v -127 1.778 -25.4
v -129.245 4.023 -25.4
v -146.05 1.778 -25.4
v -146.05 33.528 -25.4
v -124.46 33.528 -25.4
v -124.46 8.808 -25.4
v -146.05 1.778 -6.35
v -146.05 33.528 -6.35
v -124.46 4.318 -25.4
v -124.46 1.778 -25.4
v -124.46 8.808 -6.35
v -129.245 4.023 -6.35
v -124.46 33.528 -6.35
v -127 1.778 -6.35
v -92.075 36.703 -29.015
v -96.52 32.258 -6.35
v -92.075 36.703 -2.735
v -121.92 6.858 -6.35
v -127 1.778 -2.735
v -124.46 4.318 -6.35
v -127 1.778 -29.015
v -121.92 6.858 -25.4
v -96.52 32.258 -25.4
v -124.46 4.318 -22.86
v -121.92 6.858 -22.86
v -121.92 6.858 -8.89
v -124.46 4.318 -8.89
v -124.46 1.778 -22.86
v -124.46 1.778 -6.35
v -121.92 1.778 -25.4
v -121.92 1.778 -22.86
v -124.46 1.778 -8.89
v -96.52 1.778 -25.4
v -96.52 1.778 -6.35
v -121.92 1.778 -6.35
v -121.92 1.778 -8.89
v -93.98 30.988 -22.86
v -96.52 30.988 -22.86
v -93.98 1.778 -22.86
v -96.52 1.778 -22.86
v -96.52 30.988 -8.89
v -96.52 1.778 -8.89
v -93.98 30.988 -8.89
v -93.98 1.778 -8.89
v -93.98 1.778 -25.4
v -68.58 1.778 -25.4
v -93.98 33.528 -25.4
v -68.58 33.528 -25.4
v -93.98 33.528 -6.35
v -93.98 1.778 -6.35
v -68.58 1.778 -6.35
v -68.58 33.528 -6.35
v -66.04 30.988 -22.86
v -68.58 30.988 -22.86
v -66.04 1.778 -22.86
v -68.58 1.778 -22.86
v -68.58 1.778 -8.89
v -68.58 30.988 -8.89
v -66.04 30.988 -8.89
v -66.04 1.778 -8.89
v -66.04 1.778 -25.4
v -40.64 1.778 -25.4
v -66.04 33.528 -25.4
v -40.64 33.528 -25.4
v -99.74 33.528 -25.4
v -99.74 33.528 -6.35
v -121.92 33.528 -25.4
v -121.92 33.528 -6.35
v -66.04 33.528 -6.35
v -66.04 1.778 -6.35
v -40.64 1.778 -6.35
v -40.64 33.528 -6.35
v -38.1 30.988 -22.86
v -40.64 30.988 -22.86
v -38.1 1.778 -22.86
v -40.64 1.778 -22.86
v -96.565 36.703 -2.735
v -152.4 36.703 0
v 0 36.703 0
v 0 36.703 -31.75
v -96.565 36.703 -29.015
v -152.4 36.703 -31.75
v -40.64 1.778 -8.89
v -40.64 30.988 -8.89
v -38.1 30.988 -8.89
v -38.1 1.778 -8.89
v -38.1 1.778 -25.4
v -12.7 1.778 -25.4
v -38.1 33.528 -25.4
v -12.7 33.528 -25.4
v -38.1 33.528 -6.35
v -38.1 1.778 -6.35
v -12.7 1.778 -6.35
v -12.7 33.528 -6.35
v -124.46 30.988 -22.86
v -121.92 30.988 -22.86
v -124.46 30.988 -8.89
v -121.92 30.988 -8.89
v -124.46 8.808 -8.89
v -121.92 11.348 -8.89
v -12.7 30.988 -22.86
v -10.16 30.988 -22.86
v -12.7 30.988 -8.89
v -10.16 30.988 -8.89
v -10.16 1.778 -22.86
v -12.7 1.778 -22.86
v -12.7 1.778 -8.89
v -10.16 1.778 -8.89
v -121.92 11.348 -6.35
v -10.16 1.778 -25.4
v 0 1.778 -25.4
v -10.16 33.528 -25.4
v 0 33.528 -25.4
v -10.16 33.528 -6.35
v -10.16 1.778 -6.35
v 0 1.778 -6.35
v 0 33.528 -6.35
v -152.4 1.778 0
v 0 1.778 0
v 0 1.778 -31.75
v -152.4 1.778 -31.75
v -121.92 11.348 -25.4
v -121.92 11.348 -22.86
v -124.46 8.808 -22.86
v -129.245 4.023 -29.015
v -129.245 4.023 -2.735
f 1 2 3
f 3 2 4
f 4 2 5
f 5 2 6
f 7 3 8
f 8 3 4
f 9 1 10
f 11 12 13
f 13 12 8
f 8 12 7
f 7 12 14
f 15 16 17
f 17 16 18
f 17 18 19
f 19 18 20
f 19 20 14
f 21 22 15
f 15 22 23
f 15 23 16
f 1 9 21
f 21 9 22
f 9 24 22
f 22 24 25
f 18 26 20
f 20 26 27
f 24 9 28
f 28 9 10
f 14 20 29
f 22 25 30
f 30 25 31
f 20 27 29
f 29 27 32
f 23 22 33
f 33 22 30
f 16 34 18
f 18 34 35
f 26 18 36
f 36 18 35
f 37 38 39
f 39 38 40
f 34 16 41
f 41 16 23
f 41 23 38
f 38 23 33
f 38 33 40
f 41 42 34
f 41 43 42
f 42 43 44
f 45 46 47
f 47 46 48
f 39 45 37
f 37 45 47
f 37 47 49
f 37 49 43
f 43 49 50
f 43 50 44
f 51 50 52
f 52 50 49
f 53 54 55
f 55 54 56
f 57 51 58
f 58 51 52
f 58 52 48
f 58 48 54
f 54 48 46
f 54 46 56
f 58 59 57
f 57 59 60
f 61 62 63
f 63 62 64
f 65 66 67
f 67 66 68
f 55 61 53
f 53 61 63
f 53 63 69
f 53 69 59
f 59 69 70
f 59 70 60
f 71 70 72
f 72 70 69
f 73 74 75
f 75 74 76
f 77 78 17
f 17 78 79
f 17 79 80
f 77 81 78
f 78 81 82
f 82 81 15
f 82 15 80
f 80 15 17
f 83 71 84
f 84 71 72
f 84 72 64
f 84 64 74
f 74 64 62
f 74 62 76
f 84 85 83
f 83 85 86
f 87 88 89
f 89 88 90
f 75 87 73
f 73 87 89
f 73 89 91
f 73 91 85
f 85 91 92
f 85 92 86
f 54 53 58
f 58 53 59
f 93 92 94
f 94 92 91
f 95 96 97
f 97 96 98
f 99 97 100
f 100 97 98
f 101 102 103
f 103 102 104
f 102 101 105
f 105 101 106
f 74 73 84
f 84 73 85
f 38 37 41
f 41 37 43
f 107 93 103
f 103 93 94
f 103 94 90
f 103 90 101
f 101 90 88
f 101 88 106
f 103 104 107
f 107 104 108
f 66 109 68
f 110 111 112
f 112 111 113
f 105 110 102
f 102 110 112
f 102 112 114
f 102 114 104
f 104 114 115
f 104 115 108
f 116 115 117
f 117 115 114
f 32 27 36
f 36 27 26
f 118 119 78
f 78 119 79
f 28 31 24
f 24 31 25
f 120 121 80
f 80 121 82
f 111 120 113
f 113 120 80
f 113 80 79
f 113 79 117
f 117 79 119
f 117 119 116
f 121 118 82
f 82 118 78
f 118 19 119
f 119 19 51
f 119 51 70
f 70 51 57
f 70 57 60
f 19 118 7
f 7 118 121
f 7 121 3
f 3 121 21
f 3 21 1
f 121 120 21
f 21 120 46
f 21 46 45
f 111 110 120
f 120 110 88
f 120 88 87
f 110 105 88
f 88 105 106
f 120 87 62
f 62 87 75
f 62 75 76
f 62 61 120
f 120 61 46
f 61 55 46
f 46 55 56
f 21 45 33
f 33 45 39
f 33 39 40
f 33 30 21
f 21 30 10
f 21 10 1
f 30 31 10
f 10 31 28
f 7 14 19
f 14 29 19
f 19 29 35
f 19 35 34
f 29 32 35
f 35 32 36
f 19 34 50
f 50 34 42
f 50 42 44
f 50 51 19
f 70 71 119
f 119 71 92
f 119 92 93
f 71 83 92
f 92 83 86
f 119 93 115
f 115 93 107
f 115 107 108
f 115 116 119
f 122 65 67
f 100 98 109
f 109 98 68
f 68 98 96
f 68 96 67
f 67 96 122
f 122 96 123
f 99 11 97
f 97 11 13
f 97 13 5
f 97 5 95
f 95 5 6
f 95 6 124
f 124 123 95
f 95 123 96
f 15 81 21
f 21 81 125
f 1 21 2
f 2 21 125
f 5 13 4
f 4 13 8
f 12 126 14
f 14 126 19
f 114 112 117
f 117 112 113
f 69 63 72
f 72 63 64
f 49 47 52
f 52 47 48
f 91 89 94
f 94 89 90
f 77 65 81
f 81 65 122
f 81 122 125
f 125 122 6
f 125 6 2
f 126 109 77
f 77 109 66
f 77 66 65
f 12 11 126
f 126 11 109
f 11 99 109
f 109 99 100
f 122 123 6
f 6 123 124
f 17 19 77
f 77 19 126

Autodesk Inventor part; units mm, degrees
ref_plane "YZ Plane" through (0, 0, 0) normal (1, 0, 0) x (0, 1, 0)
ref_plane "XZ Plane" through (0, 0, 0) normal (0, 1, 0) x (-1, 0, 0)
ref_plane "XY Plane" through (0, 0, 0) normal (0, 0, 1) x (1, 0, 0)
sketch "Sketch1" plane through (0, 0, 0) normal (0, 1, 0) x (-1, 0, 0)
  line L0 (0, 0) -> (152.4, 0)
  line L1 (152.4, 0) -> (152.4, -31.75)
  line L2 (152.4, -31.75) -> (0, -31.75)
  line L3 (0, -31.75) -> (0, 0)
  line L4 (127, -8.89) -> (96.52, -8.89)
  line L5 (96.52, -8.89) -> (96.52, -22.86)
  line L6 (96.52, -22.86) -> (127, -22.86)
  line L7 (127, -22.86) -> (127, -8.89)
  line L8 (117.2368, -8.89) -> (117.2368, 0)
  line L9 (117.2368, -22.86) -> (117.2368, -31.75)
  dimension "d0" = 152.4
  dimension "d1" = 31.75
  dimension "d2" = 30.48
  dimension "d3" = 13.97
  dimension "d4" = 25.4
extrude "Extrusion1" add sketch "Sketch1" along normal blind 1.778 contours L0 L8 L4 L5 L6 L9 L2 L3 | L0 L1 L2 L9 L6 L7 L4 L8
sketch "Sketch2" plane through (0, 0, 0) normal (0, -1, 0) x (1, 0, 0)
  line L0 (-152.4, 0) -> (0, 0) projected
  line L1 (0, 0) -> (0, -31.75) projected
  line L2 (-152.4, 0) -> (0, 0)
  line L3 (0, 0) -> (0, -31.75)
  line L4 (0, -31.75) -> (-152.4, -31.75)
  line L5 (-152.4, -31.75) -> (-152.4, 0)
  line L6 (-127, -2.7348) -> (-96.52, -2.7348)
  line L7 (-96.52, -2.7348) -> (-96.52, -29.0152)
  line L8 (-96.52, -29.0152) -> (-127, -29.0152)
  line L9 (-127, -29.0152) -> (-127, -2.7348)
  line L10 (-127, -8.89) -> (-127, -22.86) projected
  line L11 (-103.8171, -2.7348) -> (-103.8171, 0)
  line L12 (-104.7941, -29.0152) -> (-104.7941, -31.75)
  line L13 (0, -31.75) -> (-152.4, -31.75) projected
  dimension "d7" = 30.48
  dimension "d8" = 0
extrude "Extrusion2" add sketch "Sketch2" along normal blind 1.778 contours L0 L11 L6 L9 L8 L12 L4 L5 | L0 L1 L4 L12 L8 L7 L6 L11
sketch "Sketch3" plane through (0, -1.778, 0) normal (0, -1, 0) x (1, 0, 0)
  line L0 (-152.4, 0) -> (0, 0) projected
  line L1 (0, -31.75) -> (-152.4, -31.75) projected
  line L2 (-152.4, 0) -> (0, 0)
  line L3 (0, 0) -> (0, -31.75)
  line L4 (0, -31.75) -> (-152.4, -31.75)
  line L5 (-152.4, -31.75) -> (-152.4, 0)
  line L6 (-1.5875, -30.1625) -> (-1.5875, -1.5875)
  line L7 (-1.5875, -1.5875) -> (-150.8125, -1.5875)
  line L8 (-150.8125, -1.5875) -> (-150.8125, -30.1625)
  line L9 (-150.8125, -30.1625) -> (-1.5875, -30.1625)
  dimension "d11" = 1.5875
extrude "Extrusion3" add sketch "Sketch3" along normal blind 6.35
sketch "Sketch4" plane through (0, 1.778, 0) normal (0, 1, 0) x (1, 0, 0)
  line L0 (-152.4, 0) -> (0, 0) projected
  line L1 (-152.4, 31.75) -> (-152.4, 0) projected
  line L2 (0, 0) -> (-152.4, 0)
  line L3 (-152.4, 0) -> (-152.4, 31.75)
  line L4 (-152.4, 31.75) -> (0, 31.75)
  line L5 (-6.35, 25.4) -> (-146.05, 25.4)
  line L6 (-146.05, 25.4) -> (-146.05, 6.35)
  line L7 (-146.05, 6.35) -> (-6.35, 6.35)
  line L8 (-13.5859, 25.4) -> (0, 25.4)
  line L9 (0, 0) -> (0, 31.75) projected
  line L10 (-13.5859, 6.35) -> (0, 6.35)
  line L11 (0, 31.75) -> (0, 25.4)
  line L12 (0, 6.35) -> (0, 0)
  line L13 (-127, 22.86) -> (-96.52, 22.86) projected
  line L14 (-96.52, 22.86) -> (-93.98, 22.86)
  line L15 (-93.98, 22.86) -> (-93.98, 25.4)
  line L16 (-93.98, 25.4) -> (-96.52, 25.4)
  line L17 (-96.52, 25.4) -> (-96.52, 22.86)
  line L18 (-96.52, 2.7348) -> (-96.52, 29.0152) projected
  line L19 (-96.52, 6.35) -> (-93.98, 6.35)
  line L20 (-93.98, 6.35) -> (-93.98, 8.89)
  line L21 (-93.98, 8.89) -> (-96.52, 8.89)
  line L22 (-96.52, 8.89) -> (-96.52, 6.35)
  line L23 (-121.92, 25.4) -> (-124.46, 25.4)
  line L24 (-124.46, 25.4) -> (-124.46, 22.86)
  line L25 (-124.46, 22.86) -> (-121.92, 22.86)
  line L26 (-121.92, 22.86) -> (-121.92, 25.4)
  line L27 (-121.92, 6.35) -> (-124.46, 6.35)
  line L28 (-124.46, 6.35) -> (-124.46, 8.89)
  line L29 (-124.46, 8.89) -> (-121.92, 8.89)
  line L30 (-121.92, 8.89) -> (-121.92, 6.35)
  line L31 (-68.58, 25.4) -> (-66.04, 25.4)
  line L32 (-66.04, 25.4) -> (-66.04, 22.86)
  line L33 (-66.04, 22.86) -> (-68.58, 22.86)
  line L34 (-68.58, 22.86) -> (-68.58, 25.4)
  line L35 (-68.58, 6.35) -> (-66.04, 6.35)
  line L36 (-66.04, 6.35) -> (-66.04, 8.89)
  line L37 (-66.04, 8.89) -> (-68.58, 8.89)
  line L38 (-68.58, 8.89) -> (-68.58, 6.35)
  line L39 (-40.64, 6.35) -> (-38.1, 6.35)
  line L40 (-38.1, 6.35) -> (-38.1, 8.89)
  line L41 (-38.1, 8.89) -> (-40.64, 8.89)
  line L42 (-40.64, 8.89) -> (-40.64, 6.35)
  line L43 (-40.64, 25.4) -> (-38.1, 25.4)
  line L44 (-38.1, 25.4) -> (-38.1, 22.86)
  line L45 (-38.1, 22.86) -> (-40.64, 22.86)
  line L46 (-40.64, 22.86) -> (-40.64, 25.4)
  line L47 (-12.7, 25.4) -> (-10.16, 25.4)
  line L48 (-10.16, 25.4) -> (-10.16, 22.86)
  line L49 (-10.16, 22.86) -> (-12.7, 22.86)
  line L50 (-12.7, 22.86) -> (-12.7, 25.4)
  line L51 (-12.7, 6.35) -> (-10.16, 6.35)
  line L52 (-10.16, 6.35) -> (-10.16, 8.89)
  line L53 (-10.16, 8.89) -> (-12.7, 8.89)
  line L54 (-12.7, 8.89) -> (-12.7, 6.35)
  point P0 (-121.92, 7.62)
  point P1 (-96.52, 7.62)
  point P2 (-93.98, 24.13)
  point P3 (-68.58, 24.13)
  point P4 (-40.64, 24.13)
  point P5 (-66.04, 24.13)
  point P6 (-12.7, 24.13)
  point P7 (-38.1, 24.13)
  point P8 (-6.35, 6.35)
  dimension "d14" = 6.35
  dimension "d15" = 2.54
  dimension "d16" = 2.54
  dimension "d17" = 2.54
  dimension "d18" = 2.54
  dimension "d19" = 2.54
  dimension "d20" = 2.54
  dimension "d21" = 25.4
  dimension "d22" = 2.54
  dimension "d23" = 2.54
  dimension "d24" = 2.54
  dimension "d25" = 2.54
  dimension "d26" = 2.54
  dimension "d27" = 2.54
  dimension "d28" = 2.54
  dimension "d29" = 2.54
  dimension "d30" = 2.54
  dimension "d31" = 2.54
  dimension "d32" = 2.54
  dimension "d33" = 2.54
  dimension "d34" = 25.4
  dimension "d35" = 25.4
  dimension "d36" = 25.4
extrude "Extrusion4" add sketch "Sketch4" along normal blind 31.75 contours L1 L4 L9 L8 L5 L6 L7 L10 L0 | L7 L54 L53 L52 | L48 L49 L50 L5 | L7 L42 L41 L40 | L44 L45 L46 L5 | L7 L38 L37 L36 | L32 L33 L34 L5 | L7 L18 L21 L20 | L15 L14 L17 L5 | L7 L28 L29 L30 | L26 L13 L24 L5
sketch "Sketch5" plane through (-93.98, 1.778, -8.89) normal (0, 0, -1) x (-1, 0, 0)
  line L0 (2.54, 31.75) -> (0, 31.75)
  line L1 (0, 31.75) -> (0, 29.21)
  line L2 (0, 29.21) -> (2.54, 29.21)
  line L3 (2.54, 29.21) -> (2.54, 31.75)
  line L4 (30.48, 31.75) -> (27.94, 31.75) projected
  line L5 (30.48, 0) -> (30.48, 31.75) projected
  line L6 (27.94, 31.75) -> (30.48, 31.75)
  line L7 (30.48, 31.75) -> (30.48, 29.21)
  line L8 (30.48, 29.21) -> (27.94, 29.21)
  line L9 (27.94, 29.21) -> (27.94, 31.75)
  line L10 (-27.94, 0) -> (-27.94, 31.75) projected
  line L11 (-25.4, 0) -> (-25.4, 31.75) projected
  line L12 (-27.94, 29.21) -> (-25.4, 29.21)
  line L13 (-25.4, 29.21) -> (-25.4, 31.75)
  line L14 (-25.4, 31.75) -> (-27.94, 31.75)
  line L15 (-27.94, 31.75) -> (-27.94, 29.21)
  line L16 (-93.98, 31.75) -> (58.42, 31.75) projected
  line L17 (-27.94, 31.75) -> (-25.4, 31.75)
  line L18 (-25.4, 31.75) -> (-25.4, 29.21)
  line L19 (-25.4, 29.21) -> (-27.94, 29.21)
  line L20 (-27.94, 29.21) -> (-27.94, 31.75)
  line L21 (-53.34, 31.75) -> (-55.88, 31.75)
  line L22 (-55.88, 31.75) -> (-55.88, 29.21)
  line L23 (-55.88, 29.21) -> (-53.34, 29.21)
  line L24 (-53.34, 29.21) -> (-53.34, 31.75)
  line L25 (-81.28, 31.75) -> (-83.82, 31.75)
  line L26 (-83.82, 31.75) -> (-83.82, 29.21)
  line L27 (-83.82, 29.21) -> (-81.28, 29.21)
  line L28 (-81.28, 29.21) -> (-81.28, 31.75)
  line L29 (30.48, 31.75) -> (52.07, 31.75) projected
  line L30 (30.48, 31.75) -> (27.94, 31.75)
  line L31 (27.94, 31.75) -> (27.94, 29.21)
  line L32 (27.94, 29.21) -> (30.48, 29.21)
  line L33 (30.48, 29.21) -> (30.48, 31.75)
  point P0 (-93.98, -1.778)
  point P1 (0, 30.48)
  point P2 (-25.4, 30.48)
  point P3 (-27.94, 30.48)
  point P4 (-53.34, 30.48)
  point P5 (-81.28, 30.48)
  point P6 (-55.88, 30.48)
  point P7 (27.94, 30.48)
  point P8 (2.54, 30.48)
  dimension "d39" = 2.54
  dimension "d40" = 2.54
  dimension "d41" = 2.54
  dimension "d42" = 2.54
  dimension "d43" = 2.54
  dimension "d44" = 2.54
  dimension "d45" = 25.4
  dimension "d46" = 25.4
  dimension "d47" = 2.54
  dimension "d48" = 2.54
  dimension "d49" = 25.4
  dimension "d50" = 2.54
  dimension "d51" = 2.54
  dimension "d52" = 25.4
extrude "Extrusion5" add sketch "Sketch5" along normal up to next
sketch "Sketch6" plane through (0, 33.528, 0) normal (0, 1, 0) x (1, 0, 0)
  line L0 (-152.4, 31.75) -> (-152.4, 0) projected
  line L1 (0, 31.75) -> (-152.4, 31.75) projected
  line L2 (-152.4, 0) -> (0, 0)
  line L3 (0, 0) -> (0, 31.75)
  line L4 (0, 31.75) -> (-152.4, 31.75)
  line L5 (-152.4, 31.75) -> (-152.4, 0)
extrude "Extrusion6" add sketch "Sketch6" along normal blind 3.175
ref_plane "Work Plane1" through (-127, 1.778, -8.89) normal (0.7071, -0.7071, 0) x (0, 0, -1)
sketch "Sketch7" plane through (-127, 1.778, -8.89) normal (0.7071, -0.7071, 0) x (0, 0, -1)
  line L0 (20.1252, -1.2572) -> (20.1252, 20.2954) projected
  line L1 (20.1252, 0) -> (-6.1552, 0)
  line L2 (-6.1552, 0) -> (-6.1552, 127)
  line L3 (-6.1552, 127) -> (20.1252, 127)
  line L4 (20.1252, 127) -> (20.1252, 0)
  line L5 (0, 0) -> (13.97, 0) projected
  point P0 (-8.89, 88.5453)
  point P1 (20.1252, 20.2954)
  dimension "d58" = 0
  dimension "d59" = 127
extrude "Extrusion7" cut sketch "Sketch7" against normal blind 3.175
sketch "Sketch8" plane through (0, 1.778, 0) normal (0, 1, 0) x (1, 0, 0)
  line L0 (63.8737, 171.7375) -> (-193.0507, 171.7375)
  line L1 (-193.0507, 171.7375) -> (-193.0507, -76.4775)
  line L2 (-193.0507, -76.4775) -> (63.8737, -76.4775)
  line L3 (63.8737, -76.4775) -> (63.8737, 171.7375)
  point P0 (0, 0)
extrude "Extrusion8" cut sketch "Sketch8" against normal through all
properties part number "Top"
